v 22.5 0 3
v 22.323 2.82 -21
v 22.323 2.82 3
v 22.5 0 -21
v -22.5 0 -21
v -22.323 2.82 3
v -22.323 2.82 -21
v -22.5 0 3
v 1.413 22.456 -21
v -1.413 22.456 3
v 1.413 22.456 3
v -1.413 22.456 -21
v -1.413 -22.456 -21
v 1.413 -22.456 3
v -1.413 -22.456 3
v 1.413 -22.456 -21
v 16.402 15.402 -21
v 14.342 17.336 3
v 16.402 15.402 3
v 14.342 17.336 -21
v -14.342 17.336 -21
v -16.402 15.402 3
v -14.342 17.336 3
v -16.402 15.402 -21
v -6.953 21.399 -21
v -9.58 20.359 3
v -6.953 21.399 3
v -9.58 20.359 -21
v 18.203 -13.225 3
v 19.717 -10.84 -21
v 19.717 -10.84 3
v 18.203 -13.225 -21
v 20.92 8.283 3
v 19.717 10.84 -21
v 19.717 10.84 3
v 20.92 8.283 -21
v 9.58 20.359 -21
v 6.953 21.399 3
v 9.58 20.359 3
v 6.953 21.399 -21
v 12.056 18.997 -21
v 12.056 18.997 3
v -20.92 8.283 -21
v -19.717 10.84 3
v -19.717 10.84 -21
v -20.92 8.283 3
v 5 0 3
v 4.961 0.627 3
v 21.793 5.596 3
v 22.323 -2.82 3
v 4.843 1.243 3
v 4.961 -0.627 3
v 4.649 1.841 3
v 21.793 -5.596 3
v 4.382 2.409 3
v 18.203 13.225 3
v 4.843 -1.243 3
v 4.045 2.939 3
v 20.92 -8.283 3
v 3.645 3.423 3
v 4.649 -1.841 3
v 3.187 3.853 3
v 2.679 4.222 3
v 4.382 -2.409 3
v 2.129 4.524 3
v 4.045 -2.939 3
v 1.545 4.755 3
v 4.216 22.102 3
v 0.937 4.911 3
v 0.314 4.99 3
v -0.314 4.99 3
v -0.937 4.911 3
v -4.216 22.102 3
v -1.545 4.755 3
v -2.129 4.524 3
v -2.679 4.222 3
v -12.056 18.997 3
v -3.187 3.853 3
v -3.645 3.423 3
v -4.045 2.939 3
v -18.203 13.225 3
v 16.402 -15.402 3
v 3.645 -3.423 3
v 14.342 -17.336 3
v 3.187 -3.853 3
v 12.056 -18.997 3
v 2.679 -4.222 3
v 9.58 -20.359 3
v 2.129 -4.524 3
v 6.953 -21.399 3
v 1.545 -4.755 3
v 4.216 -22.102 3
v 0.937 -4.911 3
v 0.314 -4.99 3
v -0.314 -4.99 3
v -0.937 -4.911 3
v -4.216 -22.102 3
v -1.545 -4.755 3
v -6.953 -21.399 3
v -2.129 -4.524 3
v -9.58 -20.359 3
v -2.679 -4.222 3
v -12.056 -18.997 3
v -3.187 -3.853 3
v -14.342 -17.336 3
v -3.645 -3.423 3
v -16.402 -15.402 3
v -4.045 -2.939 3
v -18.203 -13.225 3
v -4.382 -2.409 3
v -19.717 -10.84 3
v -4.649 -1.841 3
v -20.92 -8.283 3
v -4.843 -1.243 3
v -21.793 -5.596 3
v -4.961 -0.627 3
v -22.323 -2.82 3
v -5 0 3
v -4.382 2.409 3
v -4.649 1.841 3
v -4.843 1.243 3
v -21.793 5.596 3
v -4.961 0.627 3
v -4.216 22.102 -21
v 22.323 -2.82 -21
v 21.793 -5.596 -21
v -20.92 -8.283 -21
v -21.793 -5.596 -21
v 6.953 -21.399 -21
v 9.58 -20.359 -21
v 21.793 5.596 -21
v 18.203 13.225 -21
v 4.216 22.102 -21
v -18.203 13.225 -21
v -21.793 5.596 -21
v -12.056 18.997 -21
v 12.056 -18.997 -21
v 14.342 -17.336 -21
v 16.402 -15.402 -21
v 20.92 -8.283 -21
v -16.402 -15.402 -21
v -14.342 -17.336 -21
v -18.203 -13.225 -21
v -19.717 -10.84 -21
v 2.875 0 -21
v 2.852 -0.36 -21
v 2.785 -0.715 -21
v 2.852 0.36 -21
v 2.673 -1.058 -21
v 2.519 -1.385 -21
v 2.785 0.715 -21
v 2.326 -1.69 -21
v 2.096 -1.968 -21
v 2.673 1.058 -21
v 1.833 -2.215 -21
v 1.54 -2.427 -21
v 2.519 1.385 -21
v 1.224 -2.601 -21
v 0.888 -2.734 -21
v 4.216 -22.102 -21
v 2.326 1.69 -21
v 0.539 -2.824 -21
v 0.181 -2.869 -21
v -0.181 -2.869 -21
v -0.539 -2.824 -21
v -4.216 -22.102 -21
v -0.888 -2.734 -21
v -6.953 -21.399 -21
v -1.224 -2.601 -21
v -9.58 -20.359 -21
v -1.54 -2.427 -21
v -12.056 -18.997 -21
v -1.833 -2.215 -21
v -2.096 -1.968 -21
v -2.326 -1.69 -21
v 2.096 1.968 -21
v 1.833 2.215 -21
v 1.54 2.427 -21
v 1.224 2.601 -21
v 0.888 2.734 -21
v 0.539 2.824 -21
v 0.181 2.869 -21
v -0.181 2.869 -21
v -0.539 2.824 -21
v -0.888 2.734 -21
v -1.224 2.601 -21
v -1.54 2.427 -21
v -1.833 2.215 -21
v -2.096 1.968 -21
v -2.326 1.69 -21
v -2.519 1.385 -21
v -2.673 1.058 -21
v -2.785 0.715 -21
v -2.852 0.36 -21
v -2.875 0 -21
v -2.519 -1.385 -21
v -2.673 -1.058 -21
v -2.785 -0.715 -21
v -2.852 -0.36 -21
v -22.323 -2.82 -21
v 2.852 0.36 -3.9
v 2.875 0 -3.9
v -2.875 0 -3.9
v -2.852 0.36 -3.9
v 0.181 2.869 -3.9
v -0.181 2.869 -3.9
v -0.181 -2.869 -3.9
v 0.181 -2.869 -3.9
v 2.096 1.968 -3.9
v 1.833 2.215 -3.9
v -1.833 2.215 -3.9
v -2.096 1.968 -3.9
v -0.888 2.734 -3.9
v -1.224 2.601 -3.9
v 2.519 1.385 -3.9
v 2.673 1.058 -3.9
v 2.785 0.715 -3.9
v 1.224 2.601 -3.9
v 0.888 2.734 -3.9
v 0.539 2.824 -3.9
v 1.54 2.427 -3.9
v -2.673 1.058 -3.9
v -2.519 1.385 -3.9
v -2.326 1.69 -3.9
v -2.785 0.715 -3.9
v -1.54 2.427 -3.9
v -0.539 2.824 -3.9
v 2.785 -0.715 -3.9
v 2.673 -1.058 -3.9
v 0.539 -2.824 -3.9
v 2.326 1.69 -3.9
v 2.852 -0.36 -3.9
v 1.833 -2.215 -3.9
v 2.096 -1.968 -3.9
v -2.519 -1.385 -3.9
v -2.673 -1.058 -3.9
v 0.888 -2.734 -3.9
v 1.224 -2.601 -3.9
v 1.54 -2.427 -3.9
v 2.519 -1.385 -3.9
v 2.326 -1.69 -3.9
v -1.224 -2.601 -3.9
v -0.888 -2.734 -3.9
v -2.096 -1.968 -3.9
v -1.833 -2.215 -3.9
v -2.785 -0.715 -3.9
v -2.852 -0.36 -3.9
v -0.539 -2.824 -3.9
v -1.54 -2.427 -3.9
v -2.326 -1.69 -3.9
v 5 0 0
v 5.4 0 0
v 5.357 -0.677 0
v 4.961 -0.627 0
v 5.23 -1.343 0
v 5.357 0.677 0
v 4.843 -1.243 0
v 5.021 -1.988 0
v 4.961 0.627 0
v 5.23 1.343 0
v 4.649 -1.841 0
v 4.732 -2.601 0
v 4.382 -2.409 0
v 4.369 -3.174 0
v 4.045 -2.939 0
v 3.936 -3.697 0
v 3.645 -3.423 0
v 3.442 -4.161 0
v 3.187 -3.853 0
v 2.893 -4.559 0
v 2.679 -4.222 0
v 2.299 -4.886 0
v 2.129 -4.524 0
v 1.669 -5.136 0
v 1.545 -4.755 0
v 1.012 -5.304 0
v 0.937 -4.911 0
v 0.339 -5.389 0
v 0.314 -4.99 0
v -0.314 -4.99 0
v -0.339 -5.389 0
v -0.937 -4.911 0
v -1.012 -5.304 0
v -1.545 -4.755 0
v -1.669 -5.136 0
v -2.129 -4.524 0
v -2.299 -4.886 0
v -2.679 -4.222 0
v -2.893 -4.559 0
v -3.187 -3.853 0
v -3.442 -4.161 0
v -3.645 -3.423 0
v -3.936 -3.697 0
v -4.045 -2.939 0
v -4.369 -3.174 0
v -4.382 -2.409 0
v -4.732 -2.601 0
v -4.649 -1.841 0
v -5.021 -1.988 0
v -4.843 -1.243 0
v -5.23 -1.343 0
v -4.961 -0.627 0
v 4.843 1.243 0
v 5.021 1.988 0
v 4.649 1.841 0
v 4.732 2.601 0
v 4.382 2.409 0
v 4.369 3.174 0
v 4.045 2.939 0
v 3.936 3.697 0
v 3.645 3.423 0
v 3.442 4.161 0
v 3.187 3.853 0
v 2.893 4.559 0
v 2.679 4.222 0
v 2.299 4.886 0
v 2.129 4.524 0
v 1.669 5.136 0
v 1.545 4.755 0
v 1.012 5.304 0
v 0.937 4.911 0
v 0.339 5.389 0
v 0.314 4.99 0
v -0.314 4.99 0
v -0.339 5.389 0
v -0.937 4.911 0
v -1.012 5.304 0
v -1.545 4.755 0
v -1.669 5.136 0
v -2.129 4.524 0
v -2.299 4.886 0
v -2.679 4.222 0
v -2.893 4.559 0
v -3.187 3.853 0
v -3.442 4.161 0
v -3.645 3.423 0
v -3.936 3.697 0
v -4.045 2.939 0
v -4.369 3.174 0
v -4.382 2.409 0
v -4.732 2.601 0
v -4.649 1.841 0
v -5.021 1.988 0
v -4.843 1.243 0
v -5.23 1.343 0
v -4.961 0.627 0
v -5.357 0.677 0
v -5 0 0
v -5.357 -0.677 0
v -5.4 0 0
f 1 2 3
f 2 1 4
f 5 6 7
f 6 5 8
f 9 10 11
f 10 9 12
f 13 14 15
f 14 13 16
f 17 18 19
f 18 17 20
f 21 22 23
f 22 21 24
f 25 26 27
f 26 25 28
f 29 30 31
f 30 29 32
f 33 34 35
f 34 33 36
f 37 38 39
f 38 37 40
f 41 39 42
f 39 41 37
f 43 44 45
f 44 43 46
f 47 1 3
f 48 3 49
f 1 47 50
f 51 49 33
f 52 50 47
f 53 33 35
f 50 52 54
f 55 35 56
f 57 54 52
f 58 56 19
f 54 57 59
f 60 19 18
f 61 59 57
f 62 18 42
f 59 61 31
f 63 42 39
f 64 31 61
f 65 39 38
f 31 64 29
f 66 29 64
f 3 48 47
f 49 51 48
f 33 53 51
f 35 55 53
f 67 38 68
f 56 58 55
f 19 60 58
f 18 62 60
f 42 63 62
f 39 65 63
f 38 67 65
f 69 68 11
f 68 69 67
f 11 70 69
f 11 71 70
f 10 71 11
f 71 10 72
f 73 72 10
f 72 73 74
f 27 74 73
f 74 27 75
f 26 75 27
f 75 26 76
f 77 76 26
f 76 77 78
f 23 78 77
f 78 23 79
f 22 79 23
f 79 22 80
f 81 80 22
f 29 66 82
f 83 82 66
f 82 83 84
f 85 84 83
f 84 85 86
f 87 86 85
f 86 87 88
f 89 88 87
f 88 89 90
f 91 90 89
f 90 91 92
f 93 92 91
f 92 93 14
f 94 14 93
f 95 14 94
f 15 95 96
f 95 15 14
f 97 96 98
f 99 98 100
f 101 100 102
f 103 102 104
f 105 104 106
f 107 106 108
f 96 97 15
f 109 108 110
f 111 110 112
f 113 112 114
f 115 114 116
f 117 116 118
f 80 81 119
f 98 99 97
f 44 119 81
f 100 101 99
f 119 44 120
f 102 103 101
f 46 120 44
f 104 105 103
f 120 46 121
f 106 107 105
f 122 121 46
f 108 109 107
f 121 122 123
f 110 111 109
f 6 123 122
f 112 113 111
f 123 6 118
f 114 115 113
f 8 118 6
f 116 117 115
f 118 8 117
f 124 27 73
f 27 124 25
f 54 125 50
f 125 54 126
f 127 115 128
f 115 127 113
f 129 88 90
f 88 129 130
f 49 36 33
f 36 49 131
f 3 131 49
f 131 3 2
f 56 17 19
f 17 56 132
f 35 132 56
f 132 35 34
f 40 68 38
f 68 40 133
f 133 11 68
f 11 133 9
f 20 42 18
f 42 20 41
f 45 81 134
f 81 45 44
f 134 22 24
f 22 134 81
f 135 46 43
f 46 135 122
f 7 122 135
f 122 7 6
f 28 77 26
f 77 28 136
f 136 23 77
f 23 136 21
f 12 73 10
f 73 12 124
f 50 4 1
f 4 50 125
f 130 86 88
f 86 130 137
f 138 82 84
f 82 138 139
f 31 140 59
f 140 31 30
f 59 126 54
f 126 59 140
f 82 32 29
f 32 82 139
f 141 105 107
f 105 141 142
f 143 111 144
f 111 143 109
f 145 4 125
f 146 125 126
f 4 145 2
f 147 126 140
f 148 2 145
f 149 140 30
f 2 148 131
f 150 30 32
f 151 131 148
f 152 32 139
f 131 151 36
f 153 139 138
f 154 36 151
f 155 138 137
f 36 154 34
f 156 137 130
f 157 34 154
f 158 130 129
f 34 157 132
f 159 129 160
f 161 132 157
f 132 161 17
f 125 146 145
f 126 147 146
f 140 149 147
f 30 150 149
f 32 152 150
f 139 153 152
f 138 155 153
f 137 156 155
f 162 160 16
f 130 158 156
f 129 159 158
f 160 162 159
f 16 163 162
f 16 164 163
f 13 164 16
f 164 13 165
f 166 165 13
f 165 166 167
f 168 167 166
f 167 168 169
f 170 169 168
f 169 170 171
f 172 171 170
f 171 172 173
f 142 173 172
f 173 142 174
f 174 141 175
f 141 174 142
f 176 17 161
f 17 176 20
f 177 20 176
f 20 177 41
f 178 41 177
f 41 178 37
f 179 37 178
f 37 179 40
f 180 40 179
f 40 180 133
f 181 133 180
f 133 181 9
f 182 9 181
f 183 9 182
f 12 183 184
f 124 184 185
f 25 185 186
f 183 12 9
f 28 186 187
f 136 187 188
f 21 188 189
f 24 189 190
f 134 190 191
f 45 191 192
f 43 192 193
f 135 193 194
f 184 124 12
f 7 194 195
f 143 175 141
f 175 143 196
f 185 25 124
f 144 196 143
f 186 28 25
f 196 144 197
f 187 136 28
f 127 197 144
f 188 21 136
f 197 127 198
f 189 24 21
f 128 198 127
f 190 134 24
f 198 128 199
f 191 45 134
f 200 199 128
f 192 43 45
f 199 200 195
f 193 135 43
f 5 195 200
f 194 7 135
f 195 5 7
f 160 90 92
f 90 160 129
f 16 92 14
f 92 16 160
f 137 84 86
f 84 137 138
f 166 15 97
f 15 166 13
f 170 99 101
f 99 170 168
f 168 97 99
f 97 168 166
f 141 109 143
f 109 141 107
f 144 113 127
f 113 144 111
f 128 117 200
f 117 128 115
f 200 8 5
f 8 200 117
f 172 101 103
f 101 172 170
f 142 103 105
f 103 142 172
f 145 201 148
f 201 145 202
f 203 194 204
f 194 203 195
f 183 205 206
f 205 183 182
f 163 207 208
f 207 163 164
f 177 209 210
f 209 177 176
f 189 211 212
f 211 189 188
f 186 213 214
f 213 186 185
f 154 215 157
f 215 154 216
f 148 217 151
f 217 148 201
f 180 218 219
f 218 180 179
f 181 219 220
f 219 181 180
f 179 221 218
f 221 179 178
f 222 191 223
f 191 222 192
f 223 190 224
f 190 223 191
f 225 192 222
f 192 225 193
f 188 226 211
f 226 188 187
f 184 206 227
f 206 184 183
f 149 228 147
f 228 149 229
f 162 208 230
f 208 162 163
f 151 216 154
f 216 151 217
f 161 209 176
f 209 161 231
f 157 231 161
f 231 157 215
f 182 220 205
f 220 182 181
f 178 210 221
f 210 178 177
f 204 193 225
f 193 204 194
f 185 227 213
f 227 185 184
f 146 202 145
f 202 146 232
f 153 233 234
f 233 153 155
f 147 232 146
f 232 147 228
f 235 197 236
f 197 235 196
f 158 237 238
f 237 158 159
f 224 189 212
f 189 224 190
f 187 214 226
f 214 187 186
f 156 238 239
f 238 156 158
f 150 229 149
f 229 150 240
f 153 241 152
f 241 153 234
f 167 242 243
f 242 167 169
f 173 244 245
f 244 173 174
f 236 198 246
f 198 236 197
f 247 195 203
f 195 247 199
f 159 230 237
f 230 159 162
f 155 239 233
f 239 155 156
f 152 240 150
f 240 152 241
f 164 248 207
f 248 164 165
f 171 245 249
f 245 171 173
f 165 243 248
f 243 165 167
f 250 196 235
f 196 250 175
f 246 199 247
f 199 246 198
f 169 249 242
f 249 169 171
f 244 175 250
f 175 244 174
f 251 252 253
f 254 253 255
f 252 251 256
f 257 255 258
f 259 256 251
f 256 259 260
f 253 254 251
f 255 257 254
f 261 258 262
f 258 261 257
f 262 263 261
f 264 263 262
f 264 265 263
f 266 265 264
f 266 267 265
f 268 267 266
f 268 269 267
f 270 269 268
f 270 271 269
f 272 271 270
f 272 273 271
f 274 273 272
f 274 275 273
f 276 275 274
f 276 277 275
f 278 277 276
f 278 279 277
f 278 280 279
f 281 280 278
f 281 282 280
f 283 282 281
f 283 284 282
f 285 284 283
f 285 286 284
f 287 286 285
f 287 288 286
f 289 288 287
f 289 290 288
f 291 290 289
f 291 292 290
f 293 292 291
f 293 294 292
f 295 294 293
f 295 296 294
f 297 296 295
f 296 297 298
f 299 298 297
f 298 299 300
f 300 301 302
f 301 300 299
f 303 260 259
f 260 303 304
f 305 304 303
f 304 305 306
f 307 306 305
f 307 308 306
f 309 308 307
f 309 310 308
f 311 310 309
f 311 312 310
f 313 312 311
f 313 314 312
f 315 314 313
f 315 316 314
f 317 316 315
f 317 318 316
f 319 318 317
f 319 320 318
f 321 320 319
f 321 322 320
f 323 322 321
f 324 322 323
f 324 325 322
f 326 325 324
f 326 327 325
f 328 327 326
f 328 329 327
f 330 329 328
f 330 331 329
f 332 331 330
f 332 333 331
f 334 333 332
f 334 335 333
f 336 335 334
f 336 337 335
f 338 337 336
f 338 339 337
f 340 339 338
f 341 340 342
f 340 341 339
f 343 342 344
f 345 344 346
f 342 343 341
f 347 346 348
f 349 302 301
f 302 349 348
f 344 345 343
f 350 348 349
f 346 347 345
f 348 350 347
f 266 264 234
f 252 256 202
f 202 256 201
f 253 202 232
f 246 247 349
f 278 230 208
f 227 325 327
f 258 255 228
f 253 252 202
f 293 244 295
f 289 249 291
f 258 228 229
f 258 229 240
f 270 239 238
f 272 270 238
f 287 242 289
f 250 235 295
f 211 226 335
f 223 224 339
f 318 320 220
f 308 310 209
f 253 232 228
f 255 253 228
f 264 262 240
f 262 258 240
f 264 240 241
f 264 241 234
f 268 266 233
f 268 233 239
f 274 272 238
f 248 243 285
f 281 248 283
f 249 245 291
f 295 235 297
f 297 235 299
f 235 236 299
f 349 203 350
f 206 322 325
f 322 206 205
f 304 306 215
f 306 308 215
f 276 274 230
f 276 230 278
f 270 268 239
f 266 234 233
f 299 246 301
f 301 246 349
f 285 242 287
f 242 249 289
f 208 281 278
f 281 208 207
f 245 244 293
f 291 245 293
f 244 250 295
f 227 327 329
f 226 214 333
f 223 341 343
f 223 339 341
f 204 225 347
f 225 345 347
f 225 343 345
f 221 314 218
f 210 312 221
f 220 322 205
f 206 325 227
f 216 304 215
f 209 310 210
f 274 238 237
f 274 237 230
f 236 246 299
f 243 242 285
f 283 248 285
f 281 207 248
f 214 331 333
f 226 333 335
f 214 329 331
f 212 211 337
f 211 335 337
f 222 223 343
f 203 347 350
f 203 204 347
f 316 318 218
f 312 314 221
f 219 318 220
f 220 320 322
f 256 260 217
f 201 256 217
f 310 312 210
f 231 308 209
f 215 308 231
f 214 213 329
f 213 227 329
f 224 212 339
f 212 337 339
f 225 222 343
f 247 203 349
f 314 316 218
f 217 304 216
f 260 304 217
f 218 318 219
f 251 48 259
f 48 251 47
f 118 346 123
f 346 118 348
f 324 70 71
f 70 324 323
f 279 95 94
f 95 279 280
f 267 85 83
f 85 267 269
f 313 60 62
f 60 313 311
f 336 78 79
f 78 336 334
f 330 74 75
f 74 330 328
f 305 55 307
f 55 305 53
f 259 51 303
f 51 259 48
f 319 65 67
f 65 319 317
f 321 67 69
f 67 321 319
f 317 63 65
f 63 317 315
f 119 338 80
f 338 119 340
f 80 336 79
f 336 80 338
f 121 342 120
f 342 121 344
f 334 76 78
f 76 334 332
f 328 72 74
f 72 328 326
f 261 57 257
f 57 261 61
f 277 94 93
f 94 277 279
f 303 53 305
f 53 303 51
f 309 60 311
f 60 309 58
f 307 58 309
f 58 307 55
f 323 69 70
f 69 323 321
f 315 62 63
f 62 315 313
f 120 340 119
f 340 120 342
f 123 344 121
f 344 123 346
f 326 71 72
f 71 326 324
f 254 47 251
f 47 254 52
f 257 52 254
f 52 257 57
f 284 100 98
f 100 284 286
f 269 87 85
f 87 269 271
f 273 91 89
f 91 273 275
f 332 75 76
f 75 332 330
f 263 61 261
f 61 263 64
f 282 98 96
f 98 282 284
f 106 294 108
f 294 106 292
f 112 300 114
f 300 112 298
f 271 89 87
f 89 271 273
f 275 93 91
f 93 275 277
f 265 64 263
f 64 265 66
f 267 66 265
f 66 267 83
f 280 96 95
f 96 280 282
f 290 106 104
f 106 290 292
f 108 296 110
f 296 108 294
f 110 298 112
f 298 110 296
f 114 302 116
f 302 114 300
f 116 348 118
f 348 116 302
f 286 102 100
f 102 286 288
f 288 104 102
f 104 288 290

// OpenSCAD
$fn = 50;

difference() {
	union() {
		translate(v = [0, 0, -21.0]) {
			cylinder(h = 24, r = 22.5);
		}
		#translate(v = [0, 0, -24.0]) {
			cylinder(h = 24, r = 2.875);
		}
	}
	union() {
		translate(v = [0, 0, 0]) {
			rotate(a = [0, 0, 0]) {
				difference() {
					union() {
						translate(v = [0, 0, -24.0]) {
							cylinder(h = 24, r = 2.6);
						}
						translate(v = [0, 0, -3.9]) {
							cylinder(h = 3.9, r1 = 2.875, r2 = 5.4);
						}
						translate(v = [0, 0, -24.0]) {
							cylinder(h = 24, r = 2.875);
						}
						translate(v = [0, 0, -24.0]) {
							cylinder(h = 24, r = 2.6);
						}
					}
					union();
				}
			}
		}
		#cylinder(h = 3, r = 5.0);
	}
}
